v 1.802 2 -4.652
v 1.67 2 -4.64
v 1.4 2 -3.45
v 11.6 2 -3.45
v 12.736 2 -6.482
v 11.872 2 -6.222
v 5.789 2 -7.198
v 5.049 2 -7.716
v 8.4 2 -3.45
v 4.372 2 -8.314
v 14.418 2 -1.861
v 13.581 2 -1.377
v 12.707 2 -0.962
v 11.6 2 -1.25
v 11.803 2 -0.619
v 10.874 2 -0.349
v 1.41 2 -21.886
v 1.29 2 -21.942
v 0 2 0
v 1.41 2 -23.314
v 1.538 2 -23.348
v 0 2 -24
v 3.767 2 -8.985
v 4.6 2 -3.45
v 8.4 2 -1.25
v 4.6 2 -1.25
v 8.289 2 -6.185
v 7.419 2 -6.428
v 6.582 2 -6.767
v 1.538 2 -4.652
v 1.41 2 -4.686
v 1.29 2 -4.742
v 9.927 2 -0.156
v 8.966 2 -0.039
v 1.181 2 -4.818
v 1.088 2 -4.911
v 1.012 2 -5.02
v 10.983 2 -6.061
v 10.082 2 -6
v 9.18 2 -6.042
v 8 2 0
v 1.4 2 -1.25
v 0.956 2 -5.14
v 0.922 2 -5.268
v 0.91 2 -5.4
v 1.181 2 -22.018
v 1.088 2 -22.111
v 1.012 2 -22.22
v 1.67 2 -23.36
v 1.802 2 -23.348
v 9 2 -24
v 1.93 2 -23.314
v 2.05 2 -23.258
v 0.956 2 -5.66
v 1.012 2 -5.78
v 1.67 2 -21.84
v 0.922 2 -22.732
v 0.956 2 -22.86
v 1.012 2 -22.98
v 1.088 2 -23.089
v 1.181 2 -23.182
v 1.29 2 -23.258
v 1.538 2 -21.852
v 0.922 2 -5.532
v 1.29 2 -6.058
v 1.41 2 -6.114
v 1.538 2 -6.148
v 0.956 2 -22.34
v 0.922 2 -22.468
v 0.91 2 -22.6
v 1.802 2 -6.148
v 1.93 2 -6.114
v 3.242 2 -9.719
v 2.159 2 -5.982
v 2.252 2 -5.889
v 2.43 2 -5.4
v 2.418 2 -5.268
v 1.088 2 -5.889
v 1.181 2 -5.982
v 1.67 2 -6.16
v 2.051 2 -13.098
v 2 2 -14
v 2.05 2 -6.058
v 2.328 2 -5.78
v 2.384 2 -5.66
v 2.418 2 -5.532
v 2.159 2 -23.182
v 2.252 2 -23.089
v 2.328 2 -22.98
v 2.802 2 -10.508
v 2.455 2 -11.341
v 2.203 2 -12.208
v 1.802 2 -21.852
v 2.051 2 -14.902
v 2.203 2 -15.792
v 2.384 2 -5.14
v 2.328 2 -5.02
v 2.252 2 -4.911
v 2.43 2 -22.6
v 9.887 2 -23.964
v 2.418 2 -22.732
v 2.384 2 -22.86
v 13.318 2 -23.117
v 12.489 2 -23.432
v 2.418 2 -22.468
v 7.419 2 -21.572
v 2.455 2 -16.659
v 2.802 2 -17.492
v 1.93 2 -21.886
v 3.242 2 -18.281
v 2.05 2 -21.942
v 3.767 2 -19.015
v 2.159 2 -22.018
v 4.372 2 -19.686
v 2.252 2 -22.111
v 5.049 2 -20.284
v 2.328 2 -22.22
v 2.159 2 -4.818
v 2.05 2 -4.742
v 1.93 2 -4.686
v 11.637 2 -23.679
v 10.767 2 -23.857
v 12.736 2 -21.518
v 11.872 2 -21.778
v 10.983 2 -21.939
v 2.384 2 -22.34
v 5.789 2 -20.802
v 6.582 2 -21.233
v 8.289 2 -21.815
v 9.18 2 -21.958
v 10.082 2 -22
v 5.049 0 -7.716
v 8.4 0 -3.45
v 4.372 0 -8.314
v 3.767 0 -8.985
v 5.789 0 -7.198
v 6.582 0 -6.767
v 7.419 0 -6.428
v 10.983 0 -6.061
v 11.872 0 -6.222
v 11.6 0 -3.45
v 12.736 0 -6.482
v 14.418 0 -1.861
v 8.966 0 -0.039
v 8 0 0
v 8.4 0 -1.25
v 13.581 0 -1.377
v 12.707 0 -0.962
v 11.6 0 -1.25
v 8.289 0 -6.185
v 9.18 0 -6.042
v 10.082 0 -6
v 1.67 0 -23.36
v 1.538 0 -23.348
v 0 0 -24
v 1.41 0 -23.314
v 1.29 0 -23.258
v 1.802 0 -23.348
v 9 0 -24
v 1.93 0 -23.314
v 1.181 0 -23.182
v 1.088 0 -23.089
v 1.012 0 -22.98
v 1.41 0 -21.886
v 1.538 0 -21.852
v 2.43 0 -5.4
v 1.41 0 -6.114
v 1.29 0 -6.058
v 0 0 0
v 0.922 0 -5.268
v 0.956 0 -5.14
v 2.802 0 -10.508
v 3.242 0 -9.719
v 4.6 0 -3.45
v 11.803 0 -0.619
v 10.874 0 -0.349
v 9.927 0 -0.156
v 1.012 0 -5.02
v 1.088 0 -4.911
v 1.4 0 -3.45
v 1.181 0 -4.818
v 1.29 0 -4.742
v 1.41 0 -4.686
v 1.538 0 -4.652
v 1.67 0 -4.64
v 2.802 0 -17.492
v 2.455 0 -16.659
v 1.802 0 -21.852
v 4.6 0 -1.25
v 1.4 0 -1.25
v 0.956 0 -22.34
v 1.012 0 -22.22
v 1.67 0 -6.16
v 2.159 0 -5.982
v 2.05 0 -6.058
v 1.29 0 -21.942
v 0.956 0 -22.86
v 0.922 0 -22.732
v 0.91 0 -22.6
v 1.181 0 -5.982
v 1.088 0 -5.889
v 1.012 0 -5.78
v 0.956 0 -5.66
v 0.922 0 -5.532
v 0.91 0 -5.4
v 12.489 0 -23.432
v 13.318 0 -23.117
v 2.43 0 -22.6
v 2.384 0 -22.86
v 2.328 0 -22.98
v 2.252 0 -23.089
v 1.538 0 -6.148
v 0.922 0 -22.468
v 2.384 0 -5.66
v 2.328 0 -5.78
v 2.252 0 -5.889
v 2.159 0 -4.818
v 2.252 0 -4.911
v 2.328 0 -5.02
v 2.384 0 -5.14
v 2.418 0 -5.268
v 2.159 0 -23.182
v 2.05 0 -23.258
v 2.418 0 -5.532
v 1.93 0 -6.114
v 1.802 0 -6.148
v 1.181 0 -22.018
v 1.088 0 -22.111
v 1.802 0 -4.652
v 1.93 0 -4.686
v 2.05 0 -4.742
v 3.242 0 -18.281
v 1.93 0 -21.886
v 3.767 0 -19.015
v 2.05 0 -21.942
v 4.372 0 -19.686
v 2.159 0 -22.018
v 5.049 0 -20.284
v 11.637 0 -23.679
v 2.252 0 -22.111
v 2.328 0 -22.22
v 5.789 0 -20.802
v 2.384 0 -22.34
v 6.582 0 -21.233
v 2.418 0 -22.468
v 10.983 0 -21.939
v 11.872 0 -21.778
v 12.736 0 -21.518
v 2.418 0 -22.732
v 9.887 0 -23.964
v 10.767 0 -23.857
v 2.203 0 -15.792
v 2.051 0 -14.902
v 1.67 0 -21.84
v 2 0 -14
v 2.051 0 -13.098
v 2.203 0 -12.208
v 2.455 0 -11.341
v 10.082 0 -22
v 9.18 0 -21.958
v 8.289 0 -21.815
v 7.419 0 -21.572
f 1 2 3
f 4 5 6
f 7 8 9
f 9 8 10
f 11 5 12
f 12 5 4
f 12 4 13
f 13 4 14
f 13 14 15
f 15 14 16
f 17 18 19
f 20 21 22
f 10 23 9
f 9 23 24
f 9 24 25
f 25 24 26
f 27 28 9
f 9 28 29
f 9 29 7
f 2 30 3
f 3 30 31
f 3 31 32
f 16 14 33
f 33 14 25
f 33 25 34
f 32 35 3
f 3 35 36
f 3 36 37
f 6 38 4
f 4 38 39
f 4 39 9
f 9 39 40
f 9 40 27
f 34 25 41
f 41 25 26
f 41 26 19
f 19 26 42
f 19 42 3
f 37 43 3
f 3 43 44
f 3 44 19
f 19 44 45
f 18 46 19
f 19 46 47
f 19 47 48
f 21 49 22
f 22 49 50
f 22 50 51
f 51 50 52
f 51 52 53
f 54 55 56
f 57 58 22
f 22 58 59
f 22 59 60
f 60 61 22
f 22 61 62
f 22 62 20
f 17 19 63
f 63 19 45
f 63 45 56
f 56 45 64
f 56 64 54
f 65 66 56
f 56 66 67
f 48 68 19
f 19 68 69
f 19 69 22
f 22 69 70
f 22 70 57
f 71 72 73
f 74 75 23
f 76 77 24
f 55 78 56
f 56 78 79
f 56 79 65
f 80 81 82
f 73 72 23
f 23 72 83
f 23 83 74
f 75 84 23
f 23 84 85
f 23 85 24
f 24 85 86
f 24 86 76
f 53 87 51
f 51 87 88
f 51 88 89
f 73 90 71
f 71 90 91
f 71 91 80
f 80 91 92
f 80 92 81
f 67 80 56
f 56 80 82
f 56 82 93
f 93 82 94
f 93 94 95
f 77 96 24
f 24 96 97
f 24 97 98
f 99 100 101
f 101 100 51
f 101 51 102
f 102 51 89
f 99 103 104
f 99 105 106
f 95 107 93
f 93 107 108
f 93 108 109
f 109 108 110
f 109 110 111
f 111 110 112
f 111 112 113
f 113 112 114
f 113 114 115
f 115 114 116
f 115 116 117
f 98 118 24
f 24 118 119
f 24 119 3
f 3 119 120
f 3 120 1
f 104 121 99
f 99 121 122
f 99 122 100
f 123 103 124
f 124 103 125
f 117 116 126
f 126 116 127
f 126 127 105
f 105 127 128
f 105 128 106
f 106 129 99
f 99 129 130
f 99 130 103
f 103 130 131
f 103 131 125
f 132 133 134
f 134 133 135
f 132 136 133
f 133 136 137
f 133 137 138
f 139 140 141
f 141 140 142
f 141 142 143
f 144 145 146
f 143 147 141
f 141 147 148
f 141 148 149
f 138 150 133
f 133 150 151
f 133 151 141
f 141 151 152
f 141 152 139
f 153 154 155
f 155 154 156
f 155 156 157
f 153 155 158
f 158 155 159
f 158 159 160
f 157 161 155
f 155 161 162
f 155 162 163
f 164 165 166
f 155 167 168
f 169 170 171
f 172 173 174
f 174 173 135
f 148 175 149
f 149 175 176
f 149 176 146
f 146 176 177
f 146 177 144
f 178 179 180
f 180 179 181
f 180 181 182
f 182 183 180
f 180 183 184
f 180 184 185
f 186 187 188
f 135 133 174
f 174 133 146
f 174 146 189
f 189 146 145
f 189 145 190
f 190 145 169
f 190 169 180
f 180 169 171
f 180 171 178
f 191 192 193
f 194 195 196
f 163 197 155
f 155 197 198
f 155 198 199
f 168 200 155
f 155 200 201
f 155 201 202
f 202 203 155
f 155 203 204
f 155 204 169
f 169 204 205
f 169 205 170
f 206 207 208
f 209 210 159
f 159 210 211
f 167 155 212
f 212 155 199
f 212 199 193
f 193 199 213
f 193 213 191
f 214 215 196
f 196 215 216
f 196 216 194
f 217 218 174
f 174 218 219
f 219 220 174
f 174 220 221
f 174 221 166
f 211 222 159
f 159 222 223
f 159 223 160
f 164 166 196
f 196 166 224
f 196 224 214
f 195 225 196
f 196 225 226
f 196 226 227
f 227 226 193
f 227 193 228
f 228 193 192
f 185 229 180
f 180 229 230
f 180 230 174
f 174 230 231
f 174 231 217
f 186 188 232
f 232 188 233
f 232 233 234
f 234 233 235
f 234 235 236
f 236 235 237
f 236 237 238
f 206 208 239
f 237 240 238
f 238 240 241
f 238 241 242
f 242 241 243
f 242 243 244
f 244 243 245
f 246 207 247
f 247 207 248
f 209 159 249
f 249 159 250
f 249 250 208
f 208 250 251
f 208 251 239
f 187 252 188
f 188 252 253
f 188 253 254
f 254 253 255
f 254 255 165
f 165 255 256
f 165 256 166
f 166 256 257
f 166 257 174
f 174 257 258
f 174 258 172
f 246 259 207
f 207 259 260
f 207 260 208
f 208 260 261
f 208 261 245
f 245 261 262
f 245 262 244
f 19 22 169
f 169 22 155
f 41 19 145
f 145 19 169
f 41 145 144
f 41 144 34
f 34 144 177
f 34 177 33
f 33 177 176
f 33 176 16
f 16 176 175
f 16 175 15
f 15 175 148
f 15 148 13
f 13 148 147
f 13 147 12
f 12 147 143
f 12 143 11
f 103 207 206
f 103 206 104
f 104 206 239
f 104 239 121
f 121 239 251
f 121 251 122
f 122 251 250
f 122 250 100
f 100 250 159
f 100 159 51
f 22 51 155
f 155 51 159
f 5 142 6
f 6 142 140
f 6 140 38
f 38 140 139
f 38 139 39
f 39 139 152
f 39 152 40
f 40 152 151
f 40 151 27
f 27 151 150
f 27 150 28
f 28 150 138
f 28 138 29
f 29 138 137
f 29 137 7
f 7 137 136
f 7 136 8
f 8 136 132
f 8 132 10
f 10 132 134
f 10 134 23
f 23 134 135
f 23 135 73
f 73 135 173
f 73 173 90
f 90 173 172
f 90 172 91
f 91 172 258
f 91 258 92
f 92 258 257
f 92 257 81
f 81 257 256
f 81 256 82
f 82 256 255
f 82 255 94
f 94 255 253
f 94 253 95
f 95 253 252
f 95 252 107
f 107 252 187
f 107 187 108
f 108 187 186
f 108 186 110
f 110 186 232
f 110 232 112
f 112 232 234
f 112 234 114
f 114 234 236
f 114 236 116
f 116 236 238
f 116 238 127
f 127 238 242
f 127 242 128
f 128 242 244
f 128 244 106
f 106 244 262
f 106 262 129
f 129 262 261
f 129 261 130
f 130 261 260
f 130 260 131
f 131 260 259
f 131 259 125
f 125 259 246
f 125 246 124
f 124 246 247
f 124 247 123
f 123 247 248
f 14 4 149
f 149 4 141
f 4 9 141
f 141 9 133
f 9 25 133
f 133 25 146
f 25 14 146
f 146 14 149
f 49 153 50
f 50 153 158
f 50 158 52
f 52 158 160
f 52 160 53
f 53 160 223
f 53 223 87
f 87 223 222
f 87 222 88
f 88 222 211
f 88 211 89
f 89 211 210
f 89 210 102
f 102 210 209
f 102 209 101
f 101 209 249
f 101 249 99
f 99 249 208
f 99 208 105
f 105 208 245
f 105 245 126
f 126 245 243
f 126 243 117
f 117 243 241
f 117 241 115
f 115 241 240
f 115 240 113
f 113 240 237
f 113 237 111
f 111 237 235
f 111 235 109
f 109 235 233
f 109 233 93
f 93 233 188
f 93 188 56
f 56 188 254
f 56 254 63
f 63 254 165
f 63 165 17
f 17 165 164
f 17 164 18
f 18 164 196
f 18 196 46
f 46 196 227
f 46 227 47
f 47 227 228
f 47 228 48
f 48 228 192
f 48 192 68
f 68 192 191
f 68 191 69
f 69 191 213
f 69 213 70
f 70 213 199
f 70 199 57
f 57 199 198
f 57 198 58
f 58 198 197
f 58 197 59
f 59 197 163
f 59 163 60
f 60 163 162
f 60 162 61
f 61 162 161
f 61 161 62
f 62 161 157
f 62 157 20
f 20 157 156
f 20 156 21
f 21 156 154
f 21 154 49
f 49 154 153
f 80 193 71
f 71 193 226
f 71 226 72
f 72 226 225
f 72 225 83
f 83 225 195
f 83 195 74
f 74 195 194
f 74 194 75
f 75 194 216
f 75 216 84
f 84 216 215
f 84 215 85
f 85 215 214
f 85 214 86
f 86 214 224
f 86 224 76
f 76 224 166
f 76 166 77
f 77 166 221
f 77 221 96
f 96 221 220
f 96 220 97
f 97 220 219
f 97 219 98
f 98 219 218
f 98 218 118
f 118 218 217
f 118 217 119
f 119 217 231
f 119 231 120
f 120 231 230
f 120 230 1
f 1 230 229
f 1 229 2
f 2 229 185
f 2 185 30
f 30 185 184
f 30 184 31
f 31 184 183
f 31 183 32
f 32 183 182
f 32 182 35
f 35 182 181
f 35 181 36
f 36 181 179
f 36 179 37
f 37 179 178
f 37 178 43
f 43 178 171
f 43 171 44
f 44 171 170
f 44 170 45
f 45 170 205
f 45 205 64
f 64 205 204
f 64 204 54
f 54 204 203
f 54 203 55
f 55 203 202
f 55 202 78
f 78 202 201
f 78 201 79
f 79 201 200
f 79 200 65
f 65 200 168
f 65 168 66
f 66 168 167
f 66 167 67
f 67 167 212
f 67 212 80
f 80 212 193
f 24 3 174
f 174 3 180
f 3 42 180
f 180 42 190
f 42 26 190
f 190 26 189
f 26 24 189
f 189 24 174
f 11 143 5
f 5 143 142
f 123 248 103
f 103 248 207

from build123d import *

# Parameters (mm, degrees)
CROQUIS1_R              = 8
CROQUIS1_R_2            = 0.76
CROQUIS1_W              = 3.2
CROQUIS1_H              = 2.2
SALIENTE_EXTRUIR1_DEPTH = 2
CORTAR_EXTRUIR1_START   = -10
CORTAR_EXTRUIR1_DEPTH   = 10


with BuildPart() as part:
    # Croquis1 → Saliente-Extruir1 (new body)
    with BuildSketch(Plane(origin=(0, 0, 0), x_dir=(1, 0, 0), z_dir=(0, 1, 0))):
        with BuildLine():
            Line((0, 0), (8, 0))
            ThreePointArc((8, 0), (16.485281374, 3.514718626), (20, 12))
            Line((20, 12), (20, 13))
            ThreePointArc((20, 13), (16.778174593, 20.778174593), (9, 24))
            Line((9, 24), (0, 24))
            Line((0, 24), (0, 0))
        make_face()
        with Locations(Location((10, 14, 0), (0, 0, 270))):
            Circle(CROQUIS1_R, mode=Mode.SUBTRACT)
        with Locations(Location((1.67, 22.6, 0), (0, 0, 270))):
            Circle(CROQUIS1_R_2, mode=Mode.SUBTRACT)
        with Locations(Location((1.67, 5.4, 0), (0, 0, 90))):
            Circle(CROQUIS1_R_2, mode=Mode.SUBTRACT)
        with Locations((10, 2.35)):
            Rectangle(CROQUIS1_W, CROQUIS1_H, mode=Mode.SUBTRACT)
        with Locations((3, 2.35)):
            Rectangle(CROQUIS1_W, CROQUIS1_H, mode=Mode.SUBTRACT)
    extrude(amount=SALIENTE_EXTRUIR1_DEPTH)

    # Croquis2 → Cortar-Extruir1 (cut)
    with BuildSketch(Plane(origin=(0, 2, 0), x_dir=(1, 0, 0), z_dir=(0, 1, 0)).offset(CORTAR_EXTRUIR1_START)):
        with BuildLine():
            Line((14.418335952, 26.139278259), (12.736161147, 21.517540966))
            ThreePointArc((12.736161147, 21.517540966), (18, 14), (12.736161147, 6.482459034))
            Line((12.736161147, 6.482459034), (14.418335952, 1.860721741))
            ThreePointArc((14.418335952, 1.860721741), (22.918350097, 14), (14.418335952, 26.139278259))
        make_face()
    extrude(amount=CORTAR_EXTRUIR1_DEPTH, mode=Mode.SUBTRACT)


solid = part.part
